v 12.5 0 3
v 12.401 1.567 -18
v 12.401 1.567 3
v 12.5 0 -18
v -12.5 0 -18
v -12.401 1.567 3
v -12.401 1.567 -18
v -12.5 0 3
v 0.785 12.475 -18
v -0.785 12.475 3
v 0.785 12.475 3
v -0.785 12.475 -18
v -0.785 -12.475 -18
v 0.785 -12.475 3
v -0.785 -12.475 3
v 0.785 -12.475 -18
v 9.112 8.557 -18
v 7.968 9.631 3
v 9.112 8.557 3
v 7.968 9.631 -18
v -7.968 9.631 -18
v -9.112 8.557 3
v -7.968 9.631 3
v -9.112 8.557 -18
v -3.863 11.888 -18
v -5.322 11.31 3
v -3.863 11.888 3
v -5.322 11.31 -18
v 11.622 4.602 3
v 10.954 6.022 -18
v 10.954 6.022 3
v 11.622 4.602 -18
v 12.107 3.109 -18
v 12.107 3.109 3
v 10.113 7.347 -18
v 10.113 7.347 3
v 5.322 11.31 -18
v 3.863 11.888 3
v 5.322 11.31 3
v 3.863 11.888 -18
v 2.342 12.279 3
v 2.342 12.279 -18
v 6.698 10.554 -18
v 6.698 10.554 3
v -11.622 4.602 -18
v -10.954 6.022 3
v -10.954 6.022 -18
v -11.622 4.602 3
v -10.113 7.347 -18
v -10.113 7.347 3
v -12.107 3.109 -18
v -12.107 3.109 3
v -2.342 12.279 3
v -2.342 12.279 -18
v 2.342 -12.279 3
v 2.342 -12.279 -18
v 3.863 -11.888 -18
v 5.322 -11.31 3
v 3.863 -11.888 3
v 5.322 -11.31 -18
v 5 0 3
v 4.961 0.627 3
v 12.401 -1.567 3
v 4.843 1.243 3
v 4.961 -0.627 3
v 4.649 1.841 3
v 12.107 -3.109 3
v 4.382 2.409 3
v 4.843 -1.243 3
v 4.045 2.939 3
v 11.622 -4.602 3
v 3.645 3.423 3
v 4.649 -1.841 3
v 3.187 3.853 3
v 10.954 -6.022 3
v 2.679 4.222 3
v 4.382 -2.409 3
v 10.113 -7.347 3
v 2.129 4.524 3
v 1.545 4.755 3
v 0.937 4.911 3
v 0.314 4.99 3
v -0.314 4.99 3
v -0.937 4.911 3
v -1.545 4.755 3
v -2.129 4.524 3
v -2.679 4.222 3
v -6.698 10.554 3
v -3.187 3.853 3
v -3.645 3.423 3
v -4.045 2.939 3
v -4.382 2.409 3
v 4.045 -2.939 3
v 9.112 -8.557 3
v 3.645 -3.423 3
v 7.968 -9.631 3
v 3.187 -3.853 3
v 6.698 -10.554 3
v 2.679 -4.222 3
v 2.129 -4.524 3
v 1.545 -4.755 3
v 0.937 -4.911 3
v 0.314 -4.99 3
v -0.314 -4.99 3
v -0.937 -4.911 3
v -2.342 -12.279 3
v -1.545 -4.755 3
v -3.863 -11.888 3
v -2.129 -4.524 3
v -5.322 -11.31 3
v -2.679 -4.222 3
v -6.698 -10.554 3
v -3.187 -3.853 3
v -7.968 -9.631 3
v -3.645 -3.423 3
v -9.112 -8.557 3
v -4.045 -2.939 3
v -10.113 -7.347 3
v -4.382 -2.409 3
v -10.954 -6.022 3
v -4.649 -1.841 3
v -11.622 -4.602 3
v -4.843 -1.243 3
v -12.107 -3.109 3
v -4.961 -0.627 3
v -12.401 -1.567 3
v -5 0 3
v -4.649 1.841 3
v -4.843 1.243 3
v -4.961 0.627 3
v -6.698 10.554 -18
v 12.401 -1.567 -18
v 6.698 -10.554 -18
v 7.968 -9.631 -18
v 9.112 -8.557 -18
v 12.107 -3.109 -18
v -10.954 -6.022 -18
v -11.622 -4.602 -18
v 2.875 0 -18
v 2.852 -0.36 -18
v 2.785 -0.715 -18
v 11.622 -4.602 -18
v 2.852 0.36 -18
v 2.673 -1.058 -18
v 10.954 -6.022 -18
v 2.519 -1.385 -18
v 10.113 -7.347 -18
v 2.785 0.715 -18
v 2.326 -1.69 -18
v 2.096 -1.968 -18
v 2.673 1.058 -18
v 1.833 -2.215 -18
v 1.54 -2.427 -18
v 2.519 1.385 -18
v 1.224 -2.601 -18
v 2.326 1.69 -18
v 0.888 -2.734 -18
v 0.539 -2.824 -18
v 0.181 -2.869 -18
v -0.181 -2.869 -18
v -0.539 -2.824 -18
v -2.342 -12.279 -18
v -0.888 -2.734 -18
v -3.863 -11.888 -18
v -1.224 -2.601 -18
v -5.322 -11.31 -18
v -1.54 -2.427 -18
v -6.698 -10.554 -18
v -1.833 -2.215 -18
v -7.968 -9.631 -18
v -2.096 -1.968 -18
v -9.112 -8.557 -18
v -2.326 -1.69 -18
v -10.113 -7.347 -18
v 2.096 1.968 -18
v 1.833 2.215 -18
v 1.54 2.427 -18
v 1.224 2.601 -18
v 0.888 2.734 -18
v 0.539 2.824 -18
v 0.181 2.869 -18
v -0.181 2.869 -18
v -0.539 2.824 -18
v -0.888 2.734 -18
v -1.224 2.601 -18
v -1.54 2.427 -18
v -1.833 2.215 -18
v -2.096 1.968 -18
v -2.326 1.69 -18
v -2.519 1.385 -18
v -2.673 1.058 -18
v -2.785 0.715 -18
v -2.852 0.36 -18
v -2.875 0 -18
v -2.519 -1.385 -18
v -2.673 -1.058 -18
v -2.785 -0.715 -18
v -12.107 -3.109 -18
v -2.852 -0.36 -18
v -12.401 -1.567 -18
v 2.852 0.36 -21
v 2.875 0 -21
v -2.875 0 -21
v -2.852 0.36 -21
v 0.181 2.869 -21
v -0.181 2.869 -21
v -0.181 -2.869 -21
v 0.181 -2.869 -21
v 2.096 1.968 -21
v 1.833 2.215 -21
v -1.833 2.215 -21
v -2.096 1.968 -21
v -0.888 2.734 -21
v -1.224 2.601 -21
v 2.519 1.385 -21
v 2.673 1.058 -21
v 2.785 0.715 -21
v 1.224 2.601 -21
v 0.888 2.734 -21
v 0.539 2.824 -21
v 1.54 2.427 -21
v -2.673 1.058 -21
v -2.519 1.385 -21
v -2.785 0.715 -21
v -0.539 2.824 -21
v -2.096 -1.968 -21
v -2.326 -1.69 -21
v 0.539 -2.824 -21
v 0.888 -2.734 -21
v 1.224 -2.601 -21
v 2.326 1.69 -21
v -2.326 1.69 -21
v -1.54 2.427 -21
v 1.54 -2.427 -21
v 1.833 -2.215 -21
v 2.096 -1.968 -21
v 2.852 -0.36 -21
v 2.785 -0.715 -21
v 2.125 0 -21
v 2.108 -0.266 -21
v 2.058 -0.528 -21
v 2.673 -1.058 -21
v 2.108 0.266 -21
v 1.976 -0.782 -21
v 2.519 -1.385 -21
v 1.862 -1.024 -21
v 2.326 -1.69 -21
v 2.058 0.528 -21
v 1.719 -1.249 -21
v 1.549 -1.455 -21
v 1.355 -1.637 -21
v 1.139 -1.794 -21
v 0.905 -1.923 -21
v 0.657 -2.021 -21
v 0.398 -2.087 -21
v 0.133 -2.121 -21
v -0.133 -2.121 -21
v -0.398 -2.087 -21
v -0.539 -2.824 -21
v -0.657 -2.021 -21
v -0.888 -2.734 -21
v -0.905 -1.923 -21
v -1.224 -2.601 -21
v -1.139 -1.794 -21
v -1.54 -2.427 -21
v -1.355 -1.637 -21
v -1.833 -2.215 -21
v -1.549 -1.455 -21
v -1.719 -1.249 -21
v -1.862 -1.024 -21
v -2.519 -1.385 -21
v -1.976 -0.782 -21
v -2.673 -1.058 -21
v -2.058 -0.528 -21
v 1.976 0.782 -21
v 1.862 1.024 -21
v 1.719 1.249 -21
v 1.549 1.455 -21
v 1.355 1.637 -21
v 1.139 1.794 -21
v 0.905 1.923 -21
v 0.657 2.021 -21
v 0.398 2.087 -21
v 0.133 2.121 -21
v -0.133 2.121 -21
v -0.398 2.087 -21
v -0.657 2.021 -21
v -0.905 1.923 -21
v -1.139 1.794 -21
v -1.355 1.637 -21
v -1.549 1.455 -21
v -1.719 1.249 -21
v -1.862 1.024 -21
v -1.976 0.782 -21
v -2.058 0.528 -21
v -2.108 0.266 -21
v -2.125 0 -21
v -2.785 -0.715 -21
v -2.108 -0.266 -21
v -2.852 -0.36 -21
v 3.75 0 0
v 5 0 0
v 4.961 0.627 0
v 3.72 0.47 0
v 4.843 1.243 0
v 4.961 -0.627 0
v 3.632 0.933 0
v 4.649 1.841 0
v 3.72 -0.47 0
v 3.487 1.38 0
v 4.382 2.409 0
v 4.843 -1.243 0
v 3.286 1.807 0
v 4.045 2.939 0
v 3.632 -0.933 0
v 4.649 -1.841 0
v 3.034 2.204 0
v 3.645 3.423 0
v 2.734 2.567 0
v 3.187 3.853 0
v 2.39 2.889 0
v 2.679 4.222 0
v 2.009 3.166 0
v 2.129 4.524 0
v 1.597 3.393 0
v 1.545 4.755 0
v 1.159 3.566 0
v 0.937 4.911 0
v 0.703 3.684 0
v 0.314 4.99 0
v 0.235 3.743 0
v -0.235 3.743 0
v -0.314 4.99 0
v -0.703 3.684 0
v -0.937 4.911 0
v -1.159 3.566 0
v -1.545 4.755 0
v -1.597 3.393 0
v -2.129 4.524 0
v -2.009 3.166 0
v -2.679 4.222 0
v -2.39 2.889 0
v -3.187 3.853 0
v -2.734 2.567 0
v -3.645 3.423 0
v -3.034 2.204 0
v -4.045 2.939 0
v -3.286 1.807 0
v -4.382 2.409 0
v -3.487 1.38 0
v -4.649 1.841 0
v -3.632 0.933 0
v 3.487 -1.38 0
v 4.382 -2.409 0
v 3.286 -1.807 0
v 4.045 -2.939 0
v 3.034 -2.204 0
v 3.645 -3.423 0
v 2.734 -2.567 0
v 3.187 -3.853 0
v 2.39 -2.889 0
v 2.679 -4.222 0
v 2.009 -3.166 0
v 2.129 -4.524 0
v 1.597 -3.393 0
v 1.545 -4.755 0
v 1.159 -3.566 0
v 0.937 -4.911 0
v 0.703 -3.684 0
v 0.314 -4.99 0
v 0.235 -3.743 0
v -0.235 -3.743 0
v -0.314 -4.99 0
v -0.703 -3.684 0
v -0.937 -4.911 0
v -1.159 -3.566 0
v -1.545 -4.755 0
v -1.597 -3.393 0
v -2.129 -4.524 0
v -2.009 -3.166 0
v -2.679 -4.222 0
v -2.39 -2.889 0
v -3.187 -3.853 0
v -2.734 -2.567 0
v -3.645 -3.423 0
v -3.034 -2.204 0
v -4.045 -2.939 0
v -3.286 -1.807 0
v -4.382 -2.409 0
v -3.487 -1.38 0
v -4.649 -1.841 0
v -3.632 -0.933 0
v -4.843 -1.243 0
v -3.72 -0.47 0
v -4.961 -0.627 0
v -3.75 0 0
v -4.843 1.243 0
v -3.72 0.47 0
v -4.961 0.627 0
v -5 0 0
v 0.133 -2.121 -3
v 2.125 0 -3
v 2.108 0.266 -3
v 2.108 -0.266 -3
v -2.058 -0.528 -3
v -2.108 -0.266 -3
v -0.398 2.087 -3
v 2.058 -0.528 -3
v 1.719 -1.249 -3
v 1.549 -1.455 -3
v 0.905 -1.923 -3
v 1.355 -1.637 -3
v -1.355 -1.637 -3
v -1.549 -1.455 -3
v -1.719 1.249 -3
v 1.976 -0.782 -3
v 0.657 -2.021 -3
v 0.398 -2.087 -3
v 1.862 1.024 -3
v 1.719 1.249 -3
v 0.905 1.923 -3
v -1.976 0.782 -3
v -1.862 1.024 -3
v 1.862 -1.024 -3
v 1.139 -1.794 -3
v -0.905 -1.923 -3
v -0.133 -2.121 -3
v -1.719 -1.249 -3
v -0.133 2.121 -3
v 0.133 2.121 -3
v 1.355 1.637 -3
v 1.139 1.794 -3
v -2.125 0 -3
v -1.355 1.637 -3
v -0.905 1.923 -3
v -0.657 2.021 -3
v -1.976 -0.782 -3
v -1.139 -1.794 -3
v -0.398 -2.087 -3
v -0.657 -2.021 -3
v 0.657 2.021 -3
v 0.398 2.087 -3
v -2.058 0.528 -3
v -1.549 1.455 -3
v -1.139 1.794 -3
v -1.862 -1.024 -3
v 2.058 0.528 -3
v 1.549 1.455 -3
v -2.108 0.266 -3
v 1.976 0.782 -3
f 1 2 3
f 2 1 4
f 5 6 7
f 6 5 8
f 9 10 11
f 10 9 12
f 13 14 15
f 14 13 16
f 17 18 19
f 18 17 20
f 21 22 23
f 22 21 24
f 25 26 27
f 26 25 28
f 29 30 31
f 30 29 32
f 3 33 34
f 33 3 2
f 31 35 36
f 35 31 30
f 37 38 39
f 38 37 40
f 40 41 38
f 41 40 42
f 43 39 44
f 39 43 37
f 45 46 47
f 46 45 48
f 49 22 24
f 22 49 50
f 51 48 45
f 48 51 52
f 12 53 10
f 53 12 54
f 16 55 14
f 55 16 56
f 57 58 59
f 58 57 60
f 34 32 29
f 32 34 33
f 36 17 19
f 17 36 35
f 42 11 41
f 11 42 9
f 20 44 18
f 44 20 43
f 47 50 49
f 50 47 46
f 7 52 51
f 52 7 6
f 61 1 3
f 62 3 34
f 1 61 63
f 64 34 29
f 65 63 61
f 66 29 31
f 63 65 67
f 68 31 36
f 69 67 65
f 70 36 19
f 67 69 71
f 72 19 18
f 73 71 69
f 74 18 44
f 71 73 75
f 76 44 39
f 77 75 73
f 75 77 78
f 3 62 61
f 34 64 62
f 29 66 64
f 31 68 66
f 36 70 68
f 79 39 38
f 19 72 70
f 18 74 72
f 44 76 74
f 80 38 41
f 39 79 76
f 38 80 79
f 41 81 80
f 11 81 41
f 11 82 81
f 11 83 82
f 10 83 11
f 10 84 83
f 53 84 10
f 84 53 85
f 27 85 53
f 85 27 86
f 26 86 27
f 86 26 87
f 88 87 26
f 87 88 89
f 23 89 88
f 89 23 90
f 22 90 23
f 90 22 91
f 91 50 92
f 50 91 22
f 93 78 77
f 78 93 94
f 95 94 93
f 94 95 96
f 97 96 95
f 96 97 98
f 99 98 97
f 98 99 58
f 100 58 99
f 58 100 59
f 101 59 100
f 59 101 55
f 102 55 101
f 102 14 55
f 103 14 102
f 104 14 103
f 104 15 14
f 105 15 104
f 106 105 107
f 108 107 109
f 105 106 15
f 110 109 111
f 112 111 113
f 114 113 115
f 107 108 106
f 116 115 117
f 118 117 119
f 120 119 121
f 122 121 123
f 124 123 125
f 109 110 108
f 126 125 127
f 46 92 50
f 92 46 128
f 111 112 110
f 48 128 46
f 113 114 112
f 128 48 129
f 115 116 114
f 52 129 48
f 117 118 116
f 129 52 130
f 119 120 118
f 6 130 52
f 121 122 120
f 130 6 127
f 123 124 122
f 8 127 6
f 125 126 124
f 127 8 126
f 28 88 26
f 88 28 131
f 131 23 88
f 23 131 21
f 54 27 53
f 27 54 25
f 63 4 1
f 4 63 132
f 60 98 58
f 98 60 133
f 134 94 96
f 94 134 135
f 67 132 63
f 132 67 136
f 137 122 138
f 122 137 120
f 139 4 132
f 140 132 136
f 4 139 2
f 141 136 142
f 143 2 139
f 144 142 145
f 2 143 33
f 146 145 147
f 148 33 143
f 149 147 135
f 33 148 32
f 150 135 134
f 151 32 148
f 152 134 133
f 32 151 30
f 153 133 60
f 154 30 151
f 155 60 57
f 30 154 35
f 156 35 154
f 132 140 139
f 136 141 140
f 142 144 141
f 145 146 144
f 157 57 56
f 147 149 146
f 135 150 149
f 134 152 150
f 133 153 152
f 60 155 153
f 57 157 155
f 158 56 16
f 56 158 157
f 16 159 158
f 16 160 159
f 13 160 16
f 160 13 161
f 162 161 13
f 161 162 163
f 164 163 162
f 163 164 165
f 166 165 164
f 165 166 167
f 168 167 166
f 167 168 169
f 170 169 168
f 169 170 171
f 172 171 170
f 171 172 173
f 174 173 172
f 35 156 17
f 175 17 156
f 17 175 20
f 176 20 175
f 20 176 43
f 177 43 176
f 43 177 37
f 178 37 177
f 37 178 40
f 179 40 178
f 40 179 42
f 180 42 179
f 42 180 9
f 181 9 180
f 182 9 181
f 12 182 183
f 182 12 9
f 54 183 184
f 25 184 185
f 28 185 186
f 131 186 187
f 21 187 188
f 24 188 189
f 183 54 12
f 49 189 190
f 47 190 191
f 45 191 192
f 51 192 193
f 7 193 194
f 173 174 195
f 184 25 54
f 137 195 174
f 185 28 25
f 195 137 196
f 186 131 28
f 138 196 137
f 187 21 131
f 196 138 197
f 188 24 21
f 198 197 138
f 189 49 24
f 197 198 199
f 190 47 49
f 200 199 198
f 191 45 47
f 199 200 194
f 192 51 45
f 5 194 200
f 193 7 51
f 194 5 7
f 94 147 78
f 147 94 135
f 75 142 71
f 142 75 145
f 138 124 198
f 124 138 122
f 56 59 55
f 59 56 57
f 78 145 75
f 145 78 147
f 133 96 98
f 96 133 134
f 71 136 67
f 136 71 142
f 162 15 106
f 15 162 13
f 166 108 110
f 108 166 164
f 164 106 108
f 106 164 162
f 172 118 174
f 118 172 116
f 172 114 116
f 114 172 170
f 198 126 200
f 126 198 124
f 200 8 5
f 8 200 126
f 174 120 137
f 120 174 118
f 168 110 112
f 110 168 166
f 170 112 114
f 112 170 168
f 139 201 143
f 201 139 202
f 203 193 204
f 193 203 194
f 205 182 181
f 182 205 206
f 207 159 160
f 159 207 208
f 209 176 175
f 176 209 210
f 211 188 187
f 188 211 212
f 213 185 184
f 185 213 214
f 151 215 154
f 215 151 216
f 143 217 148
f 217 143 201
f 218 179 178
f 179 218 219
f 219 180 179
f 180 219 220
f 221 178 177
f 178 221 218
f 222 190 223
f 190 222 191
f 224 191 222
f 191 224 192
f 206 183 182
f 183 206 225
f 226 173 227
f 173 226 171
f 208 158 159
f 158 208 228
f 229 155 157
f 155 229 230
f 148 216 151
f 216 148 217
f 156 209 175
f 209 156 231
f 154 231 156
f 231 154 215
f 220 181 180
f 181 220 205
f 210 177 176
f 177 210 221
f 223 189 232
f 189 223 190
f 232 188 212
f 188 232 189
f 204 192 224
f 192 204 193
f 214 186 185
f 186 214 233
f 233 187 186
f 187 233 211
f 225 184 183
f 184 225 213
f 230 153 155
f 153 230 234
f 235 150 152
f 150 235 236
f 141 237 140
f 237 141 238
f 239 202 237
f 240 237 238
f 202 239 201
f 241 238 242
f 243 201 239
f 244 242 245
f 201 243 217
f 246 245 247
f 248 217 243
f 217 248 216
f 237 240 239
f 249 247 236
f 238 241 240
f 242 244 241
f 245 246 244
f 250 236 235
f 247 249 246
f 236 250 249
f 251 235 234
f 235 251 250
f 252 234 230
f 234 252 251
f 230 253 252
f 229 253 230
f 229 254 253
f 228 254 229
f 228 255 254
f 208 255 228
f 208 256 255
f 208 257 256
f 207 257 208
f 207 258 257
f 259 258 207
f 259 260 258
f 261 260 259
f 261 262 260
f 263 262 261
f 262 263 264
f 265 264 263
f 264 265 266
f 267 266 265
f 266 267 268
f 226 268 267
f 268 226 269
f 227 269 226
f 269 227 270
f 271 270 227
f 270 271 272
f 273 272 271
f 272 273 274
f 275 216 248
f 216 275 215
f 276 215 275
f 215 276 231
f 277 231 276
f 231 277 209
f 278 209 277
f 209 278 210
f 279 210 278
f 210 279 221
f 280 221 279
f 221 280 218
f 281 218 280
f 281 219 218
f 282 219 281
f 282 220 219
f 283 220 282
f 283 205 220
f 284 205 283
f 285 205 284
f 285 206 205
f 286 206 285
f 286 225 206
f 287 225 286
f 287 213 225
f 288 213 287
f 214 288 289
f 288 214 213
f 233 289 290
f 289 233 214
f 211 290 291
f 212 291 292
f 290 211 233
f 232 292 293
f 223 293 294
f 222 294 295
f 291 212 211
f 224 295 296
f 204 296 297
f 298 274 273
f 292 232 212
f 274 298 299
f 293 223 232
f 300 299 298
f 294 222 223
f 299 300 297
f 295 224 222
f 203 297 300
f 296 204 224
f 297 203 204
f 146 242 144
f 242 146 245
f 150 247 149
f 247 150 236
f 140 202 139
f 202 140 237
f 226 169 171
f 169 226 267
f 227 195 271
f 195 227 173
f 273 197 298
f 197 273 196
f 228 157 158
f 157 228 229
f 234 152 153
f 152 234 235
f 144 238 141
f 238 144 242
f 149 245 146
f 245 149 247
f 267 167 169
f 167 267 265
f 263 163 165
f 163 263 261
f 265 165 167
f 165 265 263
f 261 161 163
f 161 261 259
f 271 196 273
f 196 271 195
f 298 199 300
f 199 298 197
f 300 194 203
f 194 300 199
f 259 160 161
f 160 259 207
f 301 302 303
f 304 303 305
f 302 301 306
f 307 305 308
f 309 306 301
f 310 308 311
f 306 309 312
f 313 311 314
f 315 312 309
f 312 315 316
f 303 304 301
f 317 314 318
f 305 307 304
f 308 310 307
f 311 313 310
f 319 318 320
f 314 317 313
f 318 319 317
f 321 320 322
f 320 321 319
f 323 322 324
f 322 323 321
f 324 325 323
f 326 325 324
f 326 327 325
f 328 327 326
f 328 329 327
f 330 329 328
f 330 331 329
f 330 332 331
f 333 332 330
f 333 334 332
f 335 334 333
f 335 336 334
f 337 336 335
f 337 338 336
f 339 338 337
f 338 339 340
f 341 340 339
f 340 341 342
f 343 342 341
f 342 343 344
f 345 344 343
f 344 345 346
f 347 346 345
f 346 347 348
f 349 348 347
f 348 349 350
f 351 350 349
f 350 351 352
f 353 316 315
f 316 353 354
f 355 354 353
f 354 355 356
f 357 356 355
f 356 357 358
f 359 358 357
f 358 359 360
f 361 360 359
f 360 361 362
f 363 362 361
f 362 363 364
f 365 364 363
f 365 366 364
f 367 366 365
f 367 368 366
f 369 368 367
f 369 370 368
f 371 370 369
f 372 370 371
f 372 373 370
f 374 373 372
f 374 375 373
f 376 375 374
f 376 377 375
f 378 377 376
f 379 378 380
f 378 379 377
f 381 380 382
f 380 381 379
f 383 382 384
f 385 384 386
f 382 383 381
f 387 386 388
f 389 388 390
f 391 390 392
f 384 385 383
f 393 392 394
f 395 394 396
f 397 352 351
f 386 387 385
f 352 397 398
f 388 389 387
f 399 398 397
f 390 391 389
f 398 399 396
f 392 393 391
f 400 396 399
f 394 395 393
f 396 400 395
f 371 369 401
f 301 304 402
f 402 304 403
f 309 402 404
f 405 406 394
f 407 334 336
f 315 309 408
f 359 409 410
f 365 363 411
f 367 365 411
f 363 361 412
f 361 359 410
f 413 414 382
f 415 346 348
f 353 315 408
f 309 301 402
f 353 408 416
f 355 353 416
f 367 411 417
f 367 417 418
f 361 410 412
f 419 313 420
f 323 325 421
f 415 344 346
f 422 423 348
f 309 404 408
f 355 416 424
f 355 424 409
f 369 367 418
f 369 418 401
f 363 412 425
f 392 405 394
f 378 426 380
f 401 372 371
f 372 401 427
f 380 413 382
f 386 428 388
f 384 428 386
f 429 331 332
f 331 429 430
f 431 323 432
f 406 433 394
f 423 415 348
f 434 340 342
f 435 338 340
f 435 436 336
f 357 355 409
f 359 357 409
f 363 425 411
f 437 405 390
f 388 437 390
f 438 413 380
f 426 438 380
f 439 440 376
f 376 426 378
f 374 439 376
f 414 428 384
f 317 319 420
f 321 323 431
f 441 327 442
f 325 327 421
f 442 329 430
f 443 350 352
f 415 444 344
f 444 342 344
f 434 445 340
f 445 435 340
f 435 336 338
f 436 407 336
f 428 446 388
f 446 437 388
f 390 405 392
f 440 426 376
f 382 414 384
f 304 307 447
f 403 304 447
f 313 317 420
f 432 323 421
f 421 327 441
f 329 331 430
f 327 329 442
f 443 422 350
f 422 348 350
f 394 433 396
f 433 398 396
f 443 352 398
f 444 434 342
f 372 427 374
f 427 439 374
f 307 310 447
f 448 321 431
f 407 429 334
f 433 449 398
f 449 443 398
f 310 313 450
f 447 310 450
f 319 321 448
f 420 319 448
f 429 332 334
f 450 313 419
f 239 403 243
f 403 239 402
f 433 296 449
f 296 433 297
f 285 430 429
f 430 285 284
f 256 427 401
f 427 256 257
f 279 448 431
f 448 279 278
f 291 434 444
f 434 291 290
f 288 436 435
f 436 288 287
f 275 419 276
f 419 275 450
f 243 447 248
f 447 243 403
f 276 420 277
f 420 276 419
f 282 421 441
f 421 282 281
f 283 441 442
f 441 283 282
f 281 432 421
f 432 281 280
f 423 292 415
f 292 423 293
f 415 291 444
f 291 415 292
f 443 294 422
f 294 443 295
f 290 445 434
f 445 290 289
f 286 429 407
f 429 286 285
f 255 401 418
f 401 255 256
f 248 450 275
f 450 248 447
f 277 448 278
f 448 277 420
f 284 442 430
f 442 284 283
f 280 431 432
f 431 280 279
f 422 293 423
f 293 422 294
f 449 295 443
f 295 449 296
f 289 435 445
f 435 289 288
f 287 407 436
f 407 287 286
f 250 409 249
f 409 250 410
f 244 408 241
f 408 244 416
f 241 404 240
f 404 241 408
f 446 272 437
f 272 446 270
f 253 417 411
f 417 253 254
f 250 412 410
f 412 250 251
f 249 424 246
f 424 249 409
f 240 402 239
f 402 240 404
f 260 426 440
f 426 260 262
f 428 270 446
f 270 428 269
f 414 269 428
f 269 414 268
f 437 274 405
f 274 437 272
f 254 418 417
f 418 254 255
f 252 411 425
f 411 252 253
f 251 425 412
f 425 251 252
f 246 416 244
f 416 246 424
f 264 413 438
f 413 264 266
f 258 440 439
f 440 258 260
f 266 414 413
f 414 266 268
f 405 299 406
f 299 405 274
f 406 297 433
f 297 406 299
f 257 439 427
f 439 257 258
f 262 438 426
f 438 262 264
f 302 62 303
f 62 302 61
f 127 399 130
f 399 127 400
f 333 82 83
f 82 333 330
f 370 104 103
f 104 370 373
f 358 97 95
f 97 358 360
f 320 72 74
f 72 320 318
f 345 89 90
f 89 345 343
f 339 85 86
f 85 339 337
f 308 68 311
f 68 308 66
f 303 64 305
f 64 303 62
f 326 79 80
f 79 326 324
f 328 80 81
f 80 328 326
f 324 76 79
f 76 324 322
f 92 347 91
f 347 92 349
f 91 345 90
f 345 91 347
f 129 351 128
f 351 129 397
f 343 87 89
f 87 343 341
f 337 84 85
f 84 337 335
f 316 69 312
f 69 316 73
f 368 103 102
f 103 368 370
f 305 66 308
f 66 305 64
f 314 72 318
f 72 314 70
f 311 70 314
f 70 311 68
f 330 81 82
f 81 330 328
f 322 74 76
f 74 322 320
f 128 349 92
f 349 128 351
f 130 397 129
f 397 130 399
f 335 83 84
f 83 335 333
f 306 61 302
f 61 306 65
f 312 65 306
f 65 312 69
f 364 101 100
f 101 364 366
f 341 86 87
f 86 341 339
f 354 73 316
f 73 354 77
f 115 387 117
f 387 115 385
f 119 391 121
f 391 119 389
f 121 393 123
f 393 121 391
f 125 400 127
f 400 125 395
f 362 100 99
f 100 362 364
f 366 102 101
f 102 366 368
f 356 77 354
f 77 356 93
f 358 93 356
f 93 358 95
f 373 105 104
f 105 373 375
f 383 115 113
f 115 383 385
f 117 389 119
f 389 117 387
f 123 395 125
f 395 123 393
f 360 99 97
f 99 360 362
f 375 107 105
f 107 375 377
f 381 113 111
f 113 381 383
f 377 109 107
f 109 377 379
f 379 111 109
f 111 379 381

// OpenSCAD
$fn = 50;

difference() {
	union() {
		translate(v = [0, 0, -18.0]) {
			cylinder(h = 21, r = 12.5);
		}
		#translate(v = [0, 0, -21.0]) {
			cylinder(h = 21, r = 2.875);
		}
	}
	union() {
		translate(v = [0, 0, 0]) {
			rotate(a = [0, 0, 0]) {
				difference() {
					union() {
						translate(v = [0, 0, -21.0]) {
							cylinder(h = 21, r = 2.0);
						}
						translate(v = [0, 0, -3]) {
							cylinder(h = 3, r1 = 2.125, r2 = 3.75);
						}
						translate(v = [0, 0, -21.0]) {
							cylinder(h = 21, r = 2.125);
						}
						translate(v = [0, 0, -21.0]) {
							cylinder(h = 21, r = 2.0);
						}
					}
					union();
				}
			}
		}
		#cylinder(h = 3, r = 5.0);
	}
}
